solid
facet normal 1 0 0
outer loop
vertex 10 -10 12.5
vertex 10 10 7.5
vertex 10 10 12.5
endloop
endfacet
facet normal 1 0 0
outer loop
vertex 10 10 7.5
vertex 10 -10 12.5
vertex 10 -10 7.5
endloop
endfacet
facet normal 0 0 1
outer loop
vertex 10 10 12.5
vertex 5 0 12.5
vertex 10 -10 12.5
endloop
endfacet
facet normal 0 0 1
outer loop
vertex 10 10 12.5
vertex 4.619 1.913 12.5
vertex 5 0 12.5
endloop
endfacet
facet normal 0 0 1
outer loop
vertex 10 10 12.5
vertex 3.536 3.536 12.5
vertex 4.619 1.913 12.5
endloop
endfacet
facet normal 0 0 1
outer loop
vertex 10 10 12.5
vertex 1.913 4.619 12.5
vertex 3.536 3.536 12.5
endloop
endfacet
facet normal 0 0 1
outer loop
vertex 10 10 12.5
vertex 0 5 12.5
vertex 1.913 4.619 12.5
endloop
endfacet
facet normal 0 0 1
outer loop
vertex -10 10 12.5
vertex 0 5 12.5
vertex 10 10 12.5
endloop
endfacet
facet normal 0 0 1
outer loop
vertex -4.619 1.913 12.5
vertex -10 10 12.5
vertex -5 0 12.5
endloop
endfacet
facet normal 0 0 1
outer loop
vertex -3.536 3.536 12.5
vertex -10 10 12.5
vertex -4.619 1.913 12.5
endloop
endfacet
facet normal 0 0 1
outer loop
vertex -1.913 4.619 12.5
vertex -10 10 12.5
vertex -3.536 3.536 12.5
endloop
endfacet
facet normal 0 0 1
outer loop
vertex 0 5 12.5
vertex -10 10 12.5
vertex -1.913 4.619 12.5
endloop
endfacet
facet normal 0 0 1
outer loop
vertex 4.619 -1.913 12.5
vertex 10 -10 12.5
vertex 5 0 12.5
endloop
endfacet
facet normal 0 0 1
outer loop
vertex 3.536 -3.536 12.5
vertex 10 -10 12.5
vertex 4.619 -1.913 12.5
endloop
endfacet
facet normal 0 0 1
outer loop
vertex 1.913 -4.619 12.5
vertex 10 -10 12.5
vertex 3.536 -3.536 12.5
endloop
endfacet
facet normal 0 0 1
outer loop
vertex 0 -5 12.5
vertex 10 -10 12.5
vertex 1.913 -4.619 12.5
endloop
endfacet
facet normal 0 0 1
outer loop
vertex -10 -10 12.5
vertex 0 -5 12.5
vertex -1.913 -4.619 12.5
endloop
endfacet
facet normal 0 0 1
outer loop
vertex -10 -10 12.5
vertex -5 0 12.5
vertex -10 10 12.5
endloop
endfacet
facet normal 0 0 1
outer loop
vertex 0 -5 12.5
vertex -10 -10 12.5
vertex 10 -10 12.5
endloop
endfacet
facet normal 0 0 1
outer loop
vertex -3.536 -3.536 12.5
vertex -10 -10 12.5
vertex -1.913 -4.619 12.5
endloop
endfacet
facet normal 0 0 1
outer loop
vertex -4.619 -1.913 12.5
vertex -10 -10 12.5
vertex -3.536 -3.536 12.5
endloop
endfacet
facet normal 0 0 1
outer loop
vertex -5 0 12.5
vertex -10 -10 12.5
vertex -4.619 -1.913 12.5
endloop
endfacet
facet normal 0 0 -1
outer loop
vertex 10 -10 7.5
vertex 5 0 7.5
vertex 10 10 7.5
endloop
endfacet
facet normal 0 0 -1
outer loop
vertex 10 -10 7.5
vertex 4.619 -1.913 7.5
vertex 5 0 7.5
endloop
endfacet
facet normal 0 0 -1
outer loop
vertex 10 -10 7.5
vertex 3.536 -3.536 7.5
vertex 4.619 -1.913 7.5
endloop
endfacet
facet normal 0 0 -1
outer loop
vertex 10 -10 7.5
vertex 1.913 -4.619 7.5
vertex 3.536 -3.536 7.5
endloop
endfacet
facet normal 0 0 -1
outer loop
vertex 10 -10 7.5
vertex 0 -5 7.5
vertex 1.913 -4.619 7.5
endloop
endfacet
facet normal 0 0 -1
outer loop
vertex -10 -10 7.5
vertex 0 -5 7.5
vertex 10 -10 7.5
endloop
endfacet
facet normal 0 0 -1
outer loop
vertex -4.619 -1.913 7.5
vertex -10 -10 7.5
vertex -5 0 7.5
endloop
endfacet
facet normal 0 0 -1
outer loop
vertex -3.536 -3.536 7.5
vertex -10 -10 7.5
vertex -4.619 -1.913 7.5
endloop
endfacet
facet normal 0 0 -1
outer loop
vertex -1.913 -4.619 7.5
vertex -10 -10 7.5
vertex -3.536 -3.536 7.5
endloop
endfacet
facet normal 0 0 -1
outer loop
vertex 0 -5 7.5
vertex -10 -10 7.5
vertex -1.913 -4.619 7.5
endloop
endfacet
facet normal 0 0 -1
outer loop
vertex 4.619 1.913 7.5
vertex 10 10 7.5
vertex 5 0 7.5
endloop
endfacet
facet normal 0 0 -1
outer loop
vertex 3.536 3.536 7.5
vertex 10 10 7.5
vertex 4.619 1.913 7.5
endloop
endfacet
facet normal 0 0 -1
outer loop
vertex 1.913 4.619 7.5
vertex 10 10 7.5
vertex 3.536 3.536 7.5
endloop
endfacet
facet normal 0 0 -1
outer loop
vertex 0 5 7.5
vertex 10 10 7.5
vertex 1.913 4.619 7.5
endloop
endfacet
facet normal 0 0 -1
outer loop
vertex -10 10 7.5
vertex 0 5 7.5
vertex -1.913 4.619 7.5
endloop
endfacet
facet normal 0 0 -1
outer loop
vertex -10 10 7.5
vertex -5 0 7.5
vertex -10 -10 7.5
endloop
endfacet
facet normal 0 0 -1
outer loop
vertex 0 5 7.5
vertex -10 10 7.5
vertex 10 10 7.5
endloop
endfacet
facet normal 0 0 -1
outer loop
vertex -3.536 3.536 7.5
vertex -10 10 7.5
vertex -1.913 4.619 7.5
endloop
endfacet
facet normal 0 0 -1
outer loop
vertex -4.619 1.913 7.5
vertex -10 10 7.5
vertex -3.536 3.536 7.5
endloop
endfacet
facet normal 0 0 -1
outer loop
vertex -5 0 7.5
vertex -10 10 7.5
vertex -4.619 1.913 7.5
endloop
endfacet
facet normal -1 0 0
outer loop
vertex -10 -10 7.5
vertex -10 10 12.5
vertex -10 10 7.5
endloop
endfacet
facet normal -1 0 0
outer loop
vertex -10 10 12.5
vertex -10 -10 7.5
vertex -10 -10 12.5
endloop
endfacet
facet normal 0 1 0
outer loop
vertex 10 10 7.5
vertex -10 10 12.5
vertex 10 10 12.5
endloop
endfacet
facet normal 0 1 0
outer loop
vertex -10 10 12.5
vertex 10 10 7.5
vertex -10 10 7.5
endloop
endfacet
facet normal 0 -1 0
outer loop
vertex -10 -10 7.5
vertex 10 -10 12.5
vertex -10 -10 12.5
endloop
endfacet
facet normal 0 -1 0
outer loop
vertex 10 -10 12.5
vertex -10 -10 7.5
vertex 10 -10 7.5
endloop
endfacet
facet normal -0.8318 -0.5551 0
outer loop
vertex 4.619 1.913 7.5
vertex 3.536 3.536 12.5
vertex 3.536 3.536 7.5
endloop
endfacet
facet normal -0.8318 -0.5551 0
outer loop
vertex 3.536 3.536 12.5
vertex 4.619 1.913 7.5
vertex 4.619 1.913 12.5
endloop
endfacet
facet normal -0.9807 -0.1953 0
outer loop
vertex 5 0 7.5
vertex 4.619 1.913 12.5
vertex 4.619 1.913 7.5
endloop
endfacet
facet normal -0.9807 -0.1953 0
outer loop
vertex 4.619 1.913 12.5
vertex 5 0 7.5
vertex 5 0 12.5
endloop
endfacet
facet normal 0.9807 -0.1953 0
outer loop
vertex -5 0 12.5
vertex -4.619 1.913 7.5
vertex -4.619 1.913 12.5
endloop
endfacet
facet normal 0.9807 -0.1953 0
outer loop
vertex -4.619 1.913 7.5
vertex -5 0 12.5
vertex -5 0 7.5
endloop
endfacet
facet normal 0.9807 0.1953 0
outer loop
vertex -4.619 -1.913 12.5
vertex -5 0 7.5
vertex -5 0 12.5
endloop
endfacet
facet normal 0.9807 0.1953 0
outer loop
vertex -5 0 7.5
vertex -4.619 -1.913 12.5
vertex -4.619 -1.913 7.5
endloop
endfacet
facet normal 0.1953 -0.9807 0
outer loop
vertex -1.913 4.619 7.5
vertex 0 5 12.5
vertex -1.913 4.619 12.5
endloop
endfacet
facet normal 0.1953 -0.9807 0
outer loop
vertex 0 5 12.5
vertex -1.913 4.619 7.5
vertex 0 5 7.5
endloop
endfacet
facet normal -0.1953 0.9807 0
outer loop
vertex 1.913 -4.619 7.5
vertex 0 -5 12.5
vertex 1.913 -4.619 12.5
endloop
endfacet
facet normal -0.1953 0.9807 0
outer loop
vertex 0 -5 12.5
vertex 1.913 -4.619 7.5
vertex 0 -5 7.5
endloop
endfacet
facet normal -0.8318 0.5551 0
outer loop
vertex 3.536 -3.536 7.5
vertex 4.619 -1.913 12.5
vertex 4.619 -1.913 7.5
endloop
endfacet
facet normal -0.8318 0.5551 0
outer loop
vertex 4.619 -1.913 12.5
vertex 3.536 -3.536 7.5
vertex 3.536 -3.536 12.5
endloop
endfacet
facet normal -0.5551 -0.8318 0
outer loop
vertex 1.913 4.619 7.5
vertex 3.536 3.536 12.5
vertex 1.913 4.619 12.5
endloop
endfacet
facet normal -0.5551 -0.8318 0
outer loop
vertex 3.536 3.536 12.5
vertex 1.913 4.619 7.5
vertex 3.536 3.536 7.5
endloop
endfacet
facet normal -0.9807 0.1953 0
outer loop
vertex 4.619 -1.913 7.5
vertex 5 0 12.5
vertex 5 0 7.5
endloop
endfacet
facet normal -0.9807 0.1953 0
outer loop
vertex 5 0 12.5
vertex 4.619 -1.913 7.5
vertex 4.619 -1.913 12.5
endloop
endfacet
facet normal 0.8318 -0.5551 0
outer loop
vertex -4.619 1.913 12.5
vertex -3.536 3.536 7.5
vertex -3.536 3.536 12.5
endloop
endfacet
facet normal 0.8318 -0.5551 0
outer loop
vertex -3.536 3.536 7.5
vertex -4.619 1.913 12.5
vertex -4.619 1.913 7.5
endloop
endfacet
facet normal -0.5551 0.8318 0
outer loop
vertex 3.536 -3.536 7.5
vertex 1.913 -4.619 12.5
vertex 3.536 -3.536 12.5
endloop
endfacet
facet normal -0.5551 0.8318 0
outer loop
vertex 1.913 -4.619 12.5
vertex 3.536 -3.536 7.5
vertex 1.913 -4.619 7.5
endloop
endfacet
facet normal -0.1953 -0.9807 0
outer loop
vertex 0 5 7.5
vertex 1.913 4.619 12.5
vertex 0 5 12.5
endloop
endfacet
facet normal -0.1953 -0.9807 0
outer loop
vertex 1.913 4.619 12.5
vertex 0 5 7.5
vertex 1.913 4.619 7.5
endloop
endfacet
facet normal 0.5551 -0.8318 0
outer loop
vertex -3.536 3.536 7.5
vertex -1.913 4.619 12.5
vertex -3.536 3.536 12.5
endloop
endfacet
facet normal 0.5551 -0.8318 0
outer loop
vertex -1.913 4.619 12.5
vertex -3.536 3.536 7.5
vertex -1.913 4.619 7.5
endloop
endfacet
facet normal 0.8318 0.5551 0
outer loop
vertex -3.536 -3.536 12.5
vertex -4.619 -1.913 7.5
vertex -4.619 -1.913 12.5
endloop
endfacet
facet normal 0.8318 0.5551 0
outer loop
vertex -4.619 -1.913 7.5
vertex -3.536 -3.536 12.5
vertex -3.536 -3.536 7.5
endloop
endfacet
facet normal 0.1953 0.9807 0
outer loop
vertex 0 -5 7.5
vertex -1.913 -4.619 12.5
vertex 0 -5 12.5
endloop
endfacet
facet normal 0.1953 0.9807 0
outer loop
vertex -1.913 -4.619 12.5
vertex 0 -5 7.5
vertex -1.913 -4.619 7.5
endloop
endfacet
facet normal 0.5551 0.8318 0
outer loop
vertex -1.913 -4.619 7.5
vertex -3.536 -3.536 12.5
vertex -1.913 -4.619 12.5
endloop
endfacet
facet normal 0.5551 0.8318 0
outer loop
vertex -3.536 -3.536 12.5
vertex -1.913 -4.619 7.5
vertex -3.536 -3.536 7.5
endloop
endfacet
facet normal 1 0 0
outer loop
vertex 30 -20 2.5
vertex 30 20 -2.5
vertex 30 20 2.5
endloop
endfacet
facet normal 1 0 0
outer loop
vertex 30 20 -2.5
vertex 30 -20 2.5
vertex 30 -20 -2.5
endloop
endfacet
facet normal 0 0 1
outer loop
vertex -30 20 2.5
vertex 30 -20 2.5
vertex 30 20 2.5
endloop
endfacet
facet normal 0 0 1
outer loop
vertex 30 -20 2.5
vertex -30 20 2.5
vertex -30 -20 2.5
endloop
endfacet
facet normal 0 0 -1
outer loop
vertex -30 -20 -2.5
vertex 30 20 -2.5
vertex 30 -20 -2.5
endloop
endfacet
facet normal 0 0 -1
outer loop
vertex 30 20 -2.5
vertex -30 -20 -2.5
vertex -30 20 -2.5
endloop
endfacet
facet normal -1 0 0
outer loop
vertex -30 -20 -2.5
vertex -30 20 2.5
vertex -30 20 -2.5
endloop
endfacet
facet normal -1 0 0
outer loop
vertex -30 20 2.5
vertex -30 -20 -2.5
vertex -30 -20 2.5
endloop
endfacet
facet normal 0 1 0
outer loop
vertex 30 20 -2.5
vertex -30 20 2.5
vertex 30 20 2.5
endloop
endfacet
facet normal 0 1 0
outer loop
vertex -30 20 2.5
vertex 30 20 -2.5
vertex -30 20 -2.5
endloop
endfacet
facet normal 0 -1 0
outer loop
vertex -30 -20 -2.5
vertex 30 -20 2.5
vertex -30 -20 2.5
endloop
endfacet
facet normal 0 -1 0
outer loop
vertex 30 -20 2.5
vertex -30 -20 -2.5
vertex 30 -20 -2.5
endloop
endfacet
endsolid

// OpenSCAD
// Define dimensions for the rectangular flat plate
module rectangular_flat_plate() {
    translate([0, 0, 0])  // Position at the bottom layer
    cube([60, 40, 5], center = true);  // Dimensions: 60x40x5
}

// Define dimensions for the square plate with a hole
module square_plate_with_hole() {
    difference() {
        translate([0, 0, 10])  // Position above the rectangular flat plate
        cube([20, 20, 5], center = true);  // Dimensions: 20x20x5
        translate([0, 0, 10])  // Center hole
        cylinder(r=5, h=5, center = true);
    }
}

// Assemble the components
module assembly() {
    rectangular_flat_plate();
    square_plate_with_hole();
}

// Render the assembly
assembly();
